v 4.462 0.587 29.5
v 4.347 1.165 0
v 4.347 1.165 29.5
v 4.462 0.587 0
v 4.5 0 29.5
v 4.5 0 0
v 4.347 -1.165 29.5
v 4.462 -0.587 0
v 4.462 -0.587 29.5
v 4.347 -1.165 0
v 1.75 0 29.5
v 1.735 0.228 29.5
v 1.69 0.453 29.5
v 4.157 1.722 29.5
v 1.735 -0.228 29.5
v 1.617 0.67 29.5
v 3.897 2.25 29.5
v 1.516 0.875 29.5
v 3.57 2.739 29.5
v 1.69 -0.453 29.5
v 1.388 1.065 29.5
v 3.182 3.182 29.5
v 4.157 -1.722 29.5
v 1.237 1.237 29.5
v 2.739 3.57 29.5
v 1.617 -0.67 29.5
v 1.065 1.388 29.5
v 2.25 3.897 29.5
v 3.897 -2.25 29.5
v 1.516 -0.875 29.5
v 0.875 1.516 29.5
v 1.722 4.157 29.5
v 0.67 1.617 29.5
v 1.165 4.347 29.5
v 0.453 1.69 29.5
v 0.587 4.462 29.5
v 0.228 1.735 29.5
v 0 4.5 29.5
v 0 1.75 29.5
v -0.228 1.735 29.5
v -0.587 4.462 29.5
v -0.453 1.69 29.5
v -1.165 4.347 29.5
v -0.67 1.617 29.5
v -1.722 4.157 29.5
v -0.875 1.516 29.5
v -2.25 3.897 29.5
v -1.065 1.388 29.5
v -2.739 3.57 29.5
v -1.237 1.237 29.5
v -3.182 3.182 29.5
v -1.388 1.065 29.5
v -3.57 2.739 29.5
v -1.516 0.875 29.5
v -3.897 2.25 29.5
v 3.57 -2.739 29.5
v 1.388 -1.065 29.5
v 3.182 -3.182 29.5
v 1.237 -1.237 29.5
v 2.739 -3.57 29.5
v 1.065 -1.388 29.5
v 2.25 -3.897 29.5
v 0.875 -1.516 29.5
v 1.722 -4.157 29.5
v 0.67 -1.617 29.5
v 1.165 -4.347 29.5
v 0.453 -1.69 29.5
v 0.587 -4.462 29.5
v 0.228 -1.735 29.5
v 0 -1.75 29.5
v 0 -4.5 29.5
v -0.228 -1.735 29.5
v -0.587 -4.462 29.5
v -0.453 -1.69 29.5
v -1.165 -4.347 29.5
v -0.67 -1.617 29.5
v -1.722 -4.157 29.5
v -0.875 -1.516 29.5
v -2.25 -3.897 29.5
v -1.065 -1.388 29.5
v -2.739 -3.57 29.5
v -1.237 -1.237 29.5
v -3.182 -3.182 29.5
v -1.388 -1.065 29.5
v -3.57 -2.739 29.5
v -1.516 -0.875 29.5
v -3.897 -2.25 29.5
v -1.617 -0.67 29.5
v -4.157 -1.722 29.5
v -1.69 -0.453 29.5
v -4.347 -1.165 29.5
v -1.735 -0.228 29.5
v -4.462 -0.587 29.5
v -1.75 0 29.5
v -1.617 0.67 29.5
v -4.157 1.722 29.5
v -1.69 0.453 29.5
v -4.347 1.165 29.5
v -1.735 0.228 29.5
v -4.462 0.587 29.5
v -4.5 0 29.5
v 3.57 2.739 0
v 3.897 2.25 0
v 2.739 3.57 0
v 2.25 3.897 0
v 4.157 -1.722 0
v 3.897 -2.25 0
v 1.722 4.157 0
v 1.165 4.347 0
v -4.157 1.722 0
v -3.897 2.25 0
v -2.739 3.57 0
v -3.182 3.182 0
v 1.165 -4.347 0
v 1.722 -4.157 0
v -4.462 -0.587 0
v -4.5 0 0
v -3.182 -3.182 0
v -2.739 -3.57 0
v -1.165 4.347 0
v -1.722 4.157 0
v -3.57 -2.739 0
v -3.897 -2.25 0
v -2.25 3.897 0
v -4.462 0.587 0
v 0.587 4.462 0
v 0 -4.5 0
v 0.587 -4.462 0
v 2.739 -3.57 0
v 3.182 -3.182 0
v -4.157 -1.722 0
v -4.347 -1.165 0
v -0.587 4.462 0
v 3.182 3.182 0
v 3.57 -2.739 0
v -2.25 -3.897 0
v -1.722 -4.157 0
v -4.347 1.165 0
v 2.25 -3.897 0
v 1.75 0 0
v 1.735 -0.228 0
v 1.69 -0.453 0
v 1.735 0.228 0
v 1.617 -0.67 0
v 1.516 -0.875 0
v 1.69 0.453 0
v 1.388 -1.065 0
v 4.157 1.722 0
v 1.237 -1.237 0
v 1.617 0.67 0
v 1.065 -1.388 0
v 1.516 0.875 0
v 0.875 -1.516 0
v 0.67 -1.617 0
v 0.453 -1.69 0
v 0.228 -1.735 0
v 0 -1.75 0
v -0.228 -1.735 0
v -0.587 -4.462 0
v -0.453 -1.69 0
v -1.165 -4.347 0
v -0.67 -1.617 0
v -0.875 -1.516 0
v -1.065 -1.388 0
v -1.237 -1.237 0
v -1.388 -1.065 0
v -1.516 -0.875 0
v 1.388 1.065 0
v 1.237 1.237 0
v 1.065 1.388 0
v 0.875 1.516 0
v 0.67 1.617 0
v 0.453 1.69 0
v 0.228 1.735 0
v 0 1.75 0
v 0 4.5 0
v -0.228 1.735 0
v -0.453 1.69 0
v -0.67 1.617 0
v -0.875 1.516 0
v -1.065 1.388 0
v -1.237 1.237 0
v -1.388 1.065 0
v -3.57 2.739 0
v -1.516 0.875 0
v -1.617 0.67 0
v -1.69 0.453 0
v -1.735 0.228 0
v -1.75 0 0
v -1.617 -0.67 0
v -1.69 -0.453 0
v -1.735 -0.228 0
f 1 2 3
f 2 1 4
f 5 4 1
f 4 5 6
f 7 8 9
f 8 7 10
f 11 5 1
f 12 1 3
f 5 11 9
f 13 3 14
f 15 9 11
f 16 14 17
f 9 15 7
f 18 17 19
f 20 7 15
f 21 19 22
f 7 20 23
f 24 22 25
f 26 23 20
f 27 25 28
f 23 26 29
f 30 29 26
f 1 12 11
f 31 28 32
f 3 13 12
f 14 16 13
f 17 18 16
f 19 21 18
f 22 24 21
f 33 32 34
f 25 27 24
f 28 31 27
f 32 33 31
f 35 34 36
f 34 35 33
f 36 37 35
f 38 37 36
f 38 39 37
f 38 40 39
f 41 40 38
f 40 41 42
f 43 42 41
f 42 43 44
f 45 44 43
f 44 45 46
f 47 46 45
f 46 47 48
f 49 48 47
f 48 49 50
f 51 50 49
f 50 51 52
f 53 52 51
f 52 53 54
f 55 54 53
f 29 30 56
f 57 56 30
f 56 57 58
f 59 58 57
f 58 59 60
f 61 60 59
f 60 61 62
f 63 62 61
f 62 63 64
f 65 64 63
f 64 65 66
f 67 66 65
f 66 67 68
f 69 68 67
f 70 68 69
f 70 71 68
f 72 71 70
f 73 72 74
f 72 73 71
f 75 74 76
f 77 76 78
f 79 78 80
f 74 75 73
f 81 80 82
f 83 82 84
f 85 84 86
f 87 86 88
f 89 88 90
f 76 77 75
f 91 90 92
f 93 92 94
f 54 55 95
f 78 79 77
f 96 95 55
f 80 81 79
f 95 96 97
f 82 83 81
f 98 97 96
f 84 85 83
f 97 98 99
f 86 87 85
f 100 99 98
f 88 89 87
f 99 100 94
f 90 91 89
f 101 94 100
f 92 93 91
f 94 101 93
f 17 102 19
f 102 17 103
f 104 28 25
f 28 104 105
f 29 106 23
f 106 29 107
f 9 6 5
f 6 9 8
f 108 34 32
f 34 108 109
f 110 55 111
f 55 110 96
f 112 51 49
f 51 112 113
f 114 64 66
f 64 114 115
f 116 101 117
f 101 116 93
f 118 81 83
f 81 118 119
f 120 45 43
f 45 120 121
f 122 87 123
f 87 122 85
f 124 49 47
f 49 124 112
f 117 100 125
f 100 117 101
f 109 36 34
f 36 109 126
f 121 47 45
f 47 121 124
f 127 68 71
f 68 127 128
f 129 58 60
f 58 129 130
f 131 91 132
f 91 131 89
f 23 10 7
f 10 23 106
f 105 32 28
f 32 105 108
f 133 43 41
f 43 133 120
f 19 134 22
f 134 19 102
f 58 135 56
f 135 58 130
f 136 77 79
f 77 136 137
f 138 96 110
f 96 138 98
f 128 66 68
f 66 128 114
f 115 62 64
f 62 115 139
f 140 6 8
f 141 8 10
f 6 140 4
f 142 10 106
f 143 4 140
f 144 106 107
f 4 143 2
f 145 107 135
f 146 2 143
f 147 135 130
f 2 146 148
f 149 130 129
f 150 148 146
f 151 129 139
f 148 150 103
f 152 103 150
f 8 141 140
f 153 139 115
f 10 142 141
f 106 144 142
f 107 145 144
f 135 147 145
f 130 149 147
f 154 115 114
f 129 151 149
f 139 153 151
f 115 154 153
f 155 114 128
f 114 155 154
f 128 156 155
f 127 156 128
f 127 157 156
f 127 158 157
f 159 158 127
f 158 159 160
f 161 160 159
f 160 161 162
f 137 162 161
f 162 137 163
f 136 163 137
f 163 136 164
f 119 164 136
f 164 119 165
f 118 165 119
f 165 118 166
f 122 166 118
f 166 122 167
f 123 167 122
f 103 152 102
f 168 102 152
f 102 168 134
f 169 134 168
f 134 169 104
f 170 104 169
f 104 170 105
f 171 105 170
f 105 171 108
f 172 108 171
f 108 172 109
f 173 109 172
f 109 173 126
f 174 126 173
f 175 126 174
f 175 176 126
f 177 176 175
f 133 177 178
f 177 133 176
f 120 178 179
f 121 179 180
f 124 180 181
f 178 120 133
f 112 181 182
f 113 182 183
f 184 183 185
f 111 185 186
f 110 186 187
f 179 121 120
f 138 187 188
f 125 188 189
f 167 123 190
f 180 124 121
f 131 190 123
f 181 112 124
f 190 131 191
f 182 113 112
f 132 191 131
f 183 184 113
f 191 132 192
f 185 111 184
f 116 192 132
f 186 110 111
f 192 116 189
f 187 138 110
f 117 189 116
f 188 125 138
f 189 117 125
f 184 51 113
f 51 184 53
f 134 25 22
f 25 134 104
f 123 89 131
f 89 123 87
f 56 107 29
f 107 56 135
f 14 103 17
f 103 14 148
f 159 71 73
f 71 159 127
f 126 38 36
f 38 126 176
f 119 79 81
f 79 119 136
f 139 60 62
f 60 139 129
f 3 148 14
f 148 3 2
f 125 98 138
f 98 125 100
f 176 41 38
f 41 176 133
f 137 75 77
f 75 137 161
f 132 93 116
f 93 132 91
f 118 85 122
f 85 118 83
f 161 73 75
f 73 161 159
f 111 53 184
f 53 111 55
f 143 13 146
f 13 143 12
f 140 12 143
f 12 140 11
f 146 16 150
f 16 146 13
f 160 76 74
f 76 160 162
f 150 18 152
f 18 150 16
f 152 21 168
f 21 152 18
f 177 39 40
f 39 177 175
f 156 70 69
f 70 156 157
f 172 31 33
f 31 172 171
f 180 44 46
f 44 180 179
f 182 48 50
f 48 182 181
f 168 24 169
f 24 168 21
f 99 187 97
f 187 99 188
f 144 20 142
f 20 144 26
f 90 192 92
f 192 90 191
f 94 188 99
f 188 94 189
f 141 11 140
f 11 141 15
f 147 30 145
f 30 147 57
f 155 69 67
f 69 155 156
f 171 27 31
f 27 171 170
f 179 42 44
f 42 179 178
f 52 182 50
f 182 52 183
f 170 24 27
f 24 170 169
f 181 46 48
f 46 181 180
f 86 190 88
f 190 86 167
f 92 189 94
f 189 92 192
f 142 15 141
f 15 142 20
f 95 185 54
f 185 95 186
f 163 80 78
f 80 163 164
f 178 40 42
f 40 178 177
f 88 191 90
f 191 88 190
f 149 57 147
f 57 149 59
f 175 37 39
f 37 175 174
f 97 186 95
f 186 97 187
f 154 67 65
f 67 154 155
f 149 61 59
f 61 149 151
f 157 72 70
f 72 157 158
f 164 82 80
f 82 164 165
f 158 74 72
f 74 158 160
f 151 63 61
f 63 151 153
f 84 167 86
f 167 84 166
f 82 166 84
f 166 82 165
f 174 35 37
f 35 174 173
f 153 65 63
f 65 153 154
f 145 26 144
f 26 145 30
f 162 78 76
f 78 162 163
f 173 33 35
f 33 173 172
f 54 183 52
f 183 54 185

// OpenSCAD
// Gen-DT — frame standoff tube between stator and an endbell, on each M3 frame rod (outside rotor OD).
// Print x4. Height = frame_standoff_h (rotor + steel + hub + collar + running clearance).
include <parameters.scad>;
$fn = 48;
difference() {
    cylinder(d=standoff_od, h=frame_standoff_h);
    translate([0, 0, -0.1]) cylinder(d=m3_clear, h=frame_standoff_h + 0.2);
}
